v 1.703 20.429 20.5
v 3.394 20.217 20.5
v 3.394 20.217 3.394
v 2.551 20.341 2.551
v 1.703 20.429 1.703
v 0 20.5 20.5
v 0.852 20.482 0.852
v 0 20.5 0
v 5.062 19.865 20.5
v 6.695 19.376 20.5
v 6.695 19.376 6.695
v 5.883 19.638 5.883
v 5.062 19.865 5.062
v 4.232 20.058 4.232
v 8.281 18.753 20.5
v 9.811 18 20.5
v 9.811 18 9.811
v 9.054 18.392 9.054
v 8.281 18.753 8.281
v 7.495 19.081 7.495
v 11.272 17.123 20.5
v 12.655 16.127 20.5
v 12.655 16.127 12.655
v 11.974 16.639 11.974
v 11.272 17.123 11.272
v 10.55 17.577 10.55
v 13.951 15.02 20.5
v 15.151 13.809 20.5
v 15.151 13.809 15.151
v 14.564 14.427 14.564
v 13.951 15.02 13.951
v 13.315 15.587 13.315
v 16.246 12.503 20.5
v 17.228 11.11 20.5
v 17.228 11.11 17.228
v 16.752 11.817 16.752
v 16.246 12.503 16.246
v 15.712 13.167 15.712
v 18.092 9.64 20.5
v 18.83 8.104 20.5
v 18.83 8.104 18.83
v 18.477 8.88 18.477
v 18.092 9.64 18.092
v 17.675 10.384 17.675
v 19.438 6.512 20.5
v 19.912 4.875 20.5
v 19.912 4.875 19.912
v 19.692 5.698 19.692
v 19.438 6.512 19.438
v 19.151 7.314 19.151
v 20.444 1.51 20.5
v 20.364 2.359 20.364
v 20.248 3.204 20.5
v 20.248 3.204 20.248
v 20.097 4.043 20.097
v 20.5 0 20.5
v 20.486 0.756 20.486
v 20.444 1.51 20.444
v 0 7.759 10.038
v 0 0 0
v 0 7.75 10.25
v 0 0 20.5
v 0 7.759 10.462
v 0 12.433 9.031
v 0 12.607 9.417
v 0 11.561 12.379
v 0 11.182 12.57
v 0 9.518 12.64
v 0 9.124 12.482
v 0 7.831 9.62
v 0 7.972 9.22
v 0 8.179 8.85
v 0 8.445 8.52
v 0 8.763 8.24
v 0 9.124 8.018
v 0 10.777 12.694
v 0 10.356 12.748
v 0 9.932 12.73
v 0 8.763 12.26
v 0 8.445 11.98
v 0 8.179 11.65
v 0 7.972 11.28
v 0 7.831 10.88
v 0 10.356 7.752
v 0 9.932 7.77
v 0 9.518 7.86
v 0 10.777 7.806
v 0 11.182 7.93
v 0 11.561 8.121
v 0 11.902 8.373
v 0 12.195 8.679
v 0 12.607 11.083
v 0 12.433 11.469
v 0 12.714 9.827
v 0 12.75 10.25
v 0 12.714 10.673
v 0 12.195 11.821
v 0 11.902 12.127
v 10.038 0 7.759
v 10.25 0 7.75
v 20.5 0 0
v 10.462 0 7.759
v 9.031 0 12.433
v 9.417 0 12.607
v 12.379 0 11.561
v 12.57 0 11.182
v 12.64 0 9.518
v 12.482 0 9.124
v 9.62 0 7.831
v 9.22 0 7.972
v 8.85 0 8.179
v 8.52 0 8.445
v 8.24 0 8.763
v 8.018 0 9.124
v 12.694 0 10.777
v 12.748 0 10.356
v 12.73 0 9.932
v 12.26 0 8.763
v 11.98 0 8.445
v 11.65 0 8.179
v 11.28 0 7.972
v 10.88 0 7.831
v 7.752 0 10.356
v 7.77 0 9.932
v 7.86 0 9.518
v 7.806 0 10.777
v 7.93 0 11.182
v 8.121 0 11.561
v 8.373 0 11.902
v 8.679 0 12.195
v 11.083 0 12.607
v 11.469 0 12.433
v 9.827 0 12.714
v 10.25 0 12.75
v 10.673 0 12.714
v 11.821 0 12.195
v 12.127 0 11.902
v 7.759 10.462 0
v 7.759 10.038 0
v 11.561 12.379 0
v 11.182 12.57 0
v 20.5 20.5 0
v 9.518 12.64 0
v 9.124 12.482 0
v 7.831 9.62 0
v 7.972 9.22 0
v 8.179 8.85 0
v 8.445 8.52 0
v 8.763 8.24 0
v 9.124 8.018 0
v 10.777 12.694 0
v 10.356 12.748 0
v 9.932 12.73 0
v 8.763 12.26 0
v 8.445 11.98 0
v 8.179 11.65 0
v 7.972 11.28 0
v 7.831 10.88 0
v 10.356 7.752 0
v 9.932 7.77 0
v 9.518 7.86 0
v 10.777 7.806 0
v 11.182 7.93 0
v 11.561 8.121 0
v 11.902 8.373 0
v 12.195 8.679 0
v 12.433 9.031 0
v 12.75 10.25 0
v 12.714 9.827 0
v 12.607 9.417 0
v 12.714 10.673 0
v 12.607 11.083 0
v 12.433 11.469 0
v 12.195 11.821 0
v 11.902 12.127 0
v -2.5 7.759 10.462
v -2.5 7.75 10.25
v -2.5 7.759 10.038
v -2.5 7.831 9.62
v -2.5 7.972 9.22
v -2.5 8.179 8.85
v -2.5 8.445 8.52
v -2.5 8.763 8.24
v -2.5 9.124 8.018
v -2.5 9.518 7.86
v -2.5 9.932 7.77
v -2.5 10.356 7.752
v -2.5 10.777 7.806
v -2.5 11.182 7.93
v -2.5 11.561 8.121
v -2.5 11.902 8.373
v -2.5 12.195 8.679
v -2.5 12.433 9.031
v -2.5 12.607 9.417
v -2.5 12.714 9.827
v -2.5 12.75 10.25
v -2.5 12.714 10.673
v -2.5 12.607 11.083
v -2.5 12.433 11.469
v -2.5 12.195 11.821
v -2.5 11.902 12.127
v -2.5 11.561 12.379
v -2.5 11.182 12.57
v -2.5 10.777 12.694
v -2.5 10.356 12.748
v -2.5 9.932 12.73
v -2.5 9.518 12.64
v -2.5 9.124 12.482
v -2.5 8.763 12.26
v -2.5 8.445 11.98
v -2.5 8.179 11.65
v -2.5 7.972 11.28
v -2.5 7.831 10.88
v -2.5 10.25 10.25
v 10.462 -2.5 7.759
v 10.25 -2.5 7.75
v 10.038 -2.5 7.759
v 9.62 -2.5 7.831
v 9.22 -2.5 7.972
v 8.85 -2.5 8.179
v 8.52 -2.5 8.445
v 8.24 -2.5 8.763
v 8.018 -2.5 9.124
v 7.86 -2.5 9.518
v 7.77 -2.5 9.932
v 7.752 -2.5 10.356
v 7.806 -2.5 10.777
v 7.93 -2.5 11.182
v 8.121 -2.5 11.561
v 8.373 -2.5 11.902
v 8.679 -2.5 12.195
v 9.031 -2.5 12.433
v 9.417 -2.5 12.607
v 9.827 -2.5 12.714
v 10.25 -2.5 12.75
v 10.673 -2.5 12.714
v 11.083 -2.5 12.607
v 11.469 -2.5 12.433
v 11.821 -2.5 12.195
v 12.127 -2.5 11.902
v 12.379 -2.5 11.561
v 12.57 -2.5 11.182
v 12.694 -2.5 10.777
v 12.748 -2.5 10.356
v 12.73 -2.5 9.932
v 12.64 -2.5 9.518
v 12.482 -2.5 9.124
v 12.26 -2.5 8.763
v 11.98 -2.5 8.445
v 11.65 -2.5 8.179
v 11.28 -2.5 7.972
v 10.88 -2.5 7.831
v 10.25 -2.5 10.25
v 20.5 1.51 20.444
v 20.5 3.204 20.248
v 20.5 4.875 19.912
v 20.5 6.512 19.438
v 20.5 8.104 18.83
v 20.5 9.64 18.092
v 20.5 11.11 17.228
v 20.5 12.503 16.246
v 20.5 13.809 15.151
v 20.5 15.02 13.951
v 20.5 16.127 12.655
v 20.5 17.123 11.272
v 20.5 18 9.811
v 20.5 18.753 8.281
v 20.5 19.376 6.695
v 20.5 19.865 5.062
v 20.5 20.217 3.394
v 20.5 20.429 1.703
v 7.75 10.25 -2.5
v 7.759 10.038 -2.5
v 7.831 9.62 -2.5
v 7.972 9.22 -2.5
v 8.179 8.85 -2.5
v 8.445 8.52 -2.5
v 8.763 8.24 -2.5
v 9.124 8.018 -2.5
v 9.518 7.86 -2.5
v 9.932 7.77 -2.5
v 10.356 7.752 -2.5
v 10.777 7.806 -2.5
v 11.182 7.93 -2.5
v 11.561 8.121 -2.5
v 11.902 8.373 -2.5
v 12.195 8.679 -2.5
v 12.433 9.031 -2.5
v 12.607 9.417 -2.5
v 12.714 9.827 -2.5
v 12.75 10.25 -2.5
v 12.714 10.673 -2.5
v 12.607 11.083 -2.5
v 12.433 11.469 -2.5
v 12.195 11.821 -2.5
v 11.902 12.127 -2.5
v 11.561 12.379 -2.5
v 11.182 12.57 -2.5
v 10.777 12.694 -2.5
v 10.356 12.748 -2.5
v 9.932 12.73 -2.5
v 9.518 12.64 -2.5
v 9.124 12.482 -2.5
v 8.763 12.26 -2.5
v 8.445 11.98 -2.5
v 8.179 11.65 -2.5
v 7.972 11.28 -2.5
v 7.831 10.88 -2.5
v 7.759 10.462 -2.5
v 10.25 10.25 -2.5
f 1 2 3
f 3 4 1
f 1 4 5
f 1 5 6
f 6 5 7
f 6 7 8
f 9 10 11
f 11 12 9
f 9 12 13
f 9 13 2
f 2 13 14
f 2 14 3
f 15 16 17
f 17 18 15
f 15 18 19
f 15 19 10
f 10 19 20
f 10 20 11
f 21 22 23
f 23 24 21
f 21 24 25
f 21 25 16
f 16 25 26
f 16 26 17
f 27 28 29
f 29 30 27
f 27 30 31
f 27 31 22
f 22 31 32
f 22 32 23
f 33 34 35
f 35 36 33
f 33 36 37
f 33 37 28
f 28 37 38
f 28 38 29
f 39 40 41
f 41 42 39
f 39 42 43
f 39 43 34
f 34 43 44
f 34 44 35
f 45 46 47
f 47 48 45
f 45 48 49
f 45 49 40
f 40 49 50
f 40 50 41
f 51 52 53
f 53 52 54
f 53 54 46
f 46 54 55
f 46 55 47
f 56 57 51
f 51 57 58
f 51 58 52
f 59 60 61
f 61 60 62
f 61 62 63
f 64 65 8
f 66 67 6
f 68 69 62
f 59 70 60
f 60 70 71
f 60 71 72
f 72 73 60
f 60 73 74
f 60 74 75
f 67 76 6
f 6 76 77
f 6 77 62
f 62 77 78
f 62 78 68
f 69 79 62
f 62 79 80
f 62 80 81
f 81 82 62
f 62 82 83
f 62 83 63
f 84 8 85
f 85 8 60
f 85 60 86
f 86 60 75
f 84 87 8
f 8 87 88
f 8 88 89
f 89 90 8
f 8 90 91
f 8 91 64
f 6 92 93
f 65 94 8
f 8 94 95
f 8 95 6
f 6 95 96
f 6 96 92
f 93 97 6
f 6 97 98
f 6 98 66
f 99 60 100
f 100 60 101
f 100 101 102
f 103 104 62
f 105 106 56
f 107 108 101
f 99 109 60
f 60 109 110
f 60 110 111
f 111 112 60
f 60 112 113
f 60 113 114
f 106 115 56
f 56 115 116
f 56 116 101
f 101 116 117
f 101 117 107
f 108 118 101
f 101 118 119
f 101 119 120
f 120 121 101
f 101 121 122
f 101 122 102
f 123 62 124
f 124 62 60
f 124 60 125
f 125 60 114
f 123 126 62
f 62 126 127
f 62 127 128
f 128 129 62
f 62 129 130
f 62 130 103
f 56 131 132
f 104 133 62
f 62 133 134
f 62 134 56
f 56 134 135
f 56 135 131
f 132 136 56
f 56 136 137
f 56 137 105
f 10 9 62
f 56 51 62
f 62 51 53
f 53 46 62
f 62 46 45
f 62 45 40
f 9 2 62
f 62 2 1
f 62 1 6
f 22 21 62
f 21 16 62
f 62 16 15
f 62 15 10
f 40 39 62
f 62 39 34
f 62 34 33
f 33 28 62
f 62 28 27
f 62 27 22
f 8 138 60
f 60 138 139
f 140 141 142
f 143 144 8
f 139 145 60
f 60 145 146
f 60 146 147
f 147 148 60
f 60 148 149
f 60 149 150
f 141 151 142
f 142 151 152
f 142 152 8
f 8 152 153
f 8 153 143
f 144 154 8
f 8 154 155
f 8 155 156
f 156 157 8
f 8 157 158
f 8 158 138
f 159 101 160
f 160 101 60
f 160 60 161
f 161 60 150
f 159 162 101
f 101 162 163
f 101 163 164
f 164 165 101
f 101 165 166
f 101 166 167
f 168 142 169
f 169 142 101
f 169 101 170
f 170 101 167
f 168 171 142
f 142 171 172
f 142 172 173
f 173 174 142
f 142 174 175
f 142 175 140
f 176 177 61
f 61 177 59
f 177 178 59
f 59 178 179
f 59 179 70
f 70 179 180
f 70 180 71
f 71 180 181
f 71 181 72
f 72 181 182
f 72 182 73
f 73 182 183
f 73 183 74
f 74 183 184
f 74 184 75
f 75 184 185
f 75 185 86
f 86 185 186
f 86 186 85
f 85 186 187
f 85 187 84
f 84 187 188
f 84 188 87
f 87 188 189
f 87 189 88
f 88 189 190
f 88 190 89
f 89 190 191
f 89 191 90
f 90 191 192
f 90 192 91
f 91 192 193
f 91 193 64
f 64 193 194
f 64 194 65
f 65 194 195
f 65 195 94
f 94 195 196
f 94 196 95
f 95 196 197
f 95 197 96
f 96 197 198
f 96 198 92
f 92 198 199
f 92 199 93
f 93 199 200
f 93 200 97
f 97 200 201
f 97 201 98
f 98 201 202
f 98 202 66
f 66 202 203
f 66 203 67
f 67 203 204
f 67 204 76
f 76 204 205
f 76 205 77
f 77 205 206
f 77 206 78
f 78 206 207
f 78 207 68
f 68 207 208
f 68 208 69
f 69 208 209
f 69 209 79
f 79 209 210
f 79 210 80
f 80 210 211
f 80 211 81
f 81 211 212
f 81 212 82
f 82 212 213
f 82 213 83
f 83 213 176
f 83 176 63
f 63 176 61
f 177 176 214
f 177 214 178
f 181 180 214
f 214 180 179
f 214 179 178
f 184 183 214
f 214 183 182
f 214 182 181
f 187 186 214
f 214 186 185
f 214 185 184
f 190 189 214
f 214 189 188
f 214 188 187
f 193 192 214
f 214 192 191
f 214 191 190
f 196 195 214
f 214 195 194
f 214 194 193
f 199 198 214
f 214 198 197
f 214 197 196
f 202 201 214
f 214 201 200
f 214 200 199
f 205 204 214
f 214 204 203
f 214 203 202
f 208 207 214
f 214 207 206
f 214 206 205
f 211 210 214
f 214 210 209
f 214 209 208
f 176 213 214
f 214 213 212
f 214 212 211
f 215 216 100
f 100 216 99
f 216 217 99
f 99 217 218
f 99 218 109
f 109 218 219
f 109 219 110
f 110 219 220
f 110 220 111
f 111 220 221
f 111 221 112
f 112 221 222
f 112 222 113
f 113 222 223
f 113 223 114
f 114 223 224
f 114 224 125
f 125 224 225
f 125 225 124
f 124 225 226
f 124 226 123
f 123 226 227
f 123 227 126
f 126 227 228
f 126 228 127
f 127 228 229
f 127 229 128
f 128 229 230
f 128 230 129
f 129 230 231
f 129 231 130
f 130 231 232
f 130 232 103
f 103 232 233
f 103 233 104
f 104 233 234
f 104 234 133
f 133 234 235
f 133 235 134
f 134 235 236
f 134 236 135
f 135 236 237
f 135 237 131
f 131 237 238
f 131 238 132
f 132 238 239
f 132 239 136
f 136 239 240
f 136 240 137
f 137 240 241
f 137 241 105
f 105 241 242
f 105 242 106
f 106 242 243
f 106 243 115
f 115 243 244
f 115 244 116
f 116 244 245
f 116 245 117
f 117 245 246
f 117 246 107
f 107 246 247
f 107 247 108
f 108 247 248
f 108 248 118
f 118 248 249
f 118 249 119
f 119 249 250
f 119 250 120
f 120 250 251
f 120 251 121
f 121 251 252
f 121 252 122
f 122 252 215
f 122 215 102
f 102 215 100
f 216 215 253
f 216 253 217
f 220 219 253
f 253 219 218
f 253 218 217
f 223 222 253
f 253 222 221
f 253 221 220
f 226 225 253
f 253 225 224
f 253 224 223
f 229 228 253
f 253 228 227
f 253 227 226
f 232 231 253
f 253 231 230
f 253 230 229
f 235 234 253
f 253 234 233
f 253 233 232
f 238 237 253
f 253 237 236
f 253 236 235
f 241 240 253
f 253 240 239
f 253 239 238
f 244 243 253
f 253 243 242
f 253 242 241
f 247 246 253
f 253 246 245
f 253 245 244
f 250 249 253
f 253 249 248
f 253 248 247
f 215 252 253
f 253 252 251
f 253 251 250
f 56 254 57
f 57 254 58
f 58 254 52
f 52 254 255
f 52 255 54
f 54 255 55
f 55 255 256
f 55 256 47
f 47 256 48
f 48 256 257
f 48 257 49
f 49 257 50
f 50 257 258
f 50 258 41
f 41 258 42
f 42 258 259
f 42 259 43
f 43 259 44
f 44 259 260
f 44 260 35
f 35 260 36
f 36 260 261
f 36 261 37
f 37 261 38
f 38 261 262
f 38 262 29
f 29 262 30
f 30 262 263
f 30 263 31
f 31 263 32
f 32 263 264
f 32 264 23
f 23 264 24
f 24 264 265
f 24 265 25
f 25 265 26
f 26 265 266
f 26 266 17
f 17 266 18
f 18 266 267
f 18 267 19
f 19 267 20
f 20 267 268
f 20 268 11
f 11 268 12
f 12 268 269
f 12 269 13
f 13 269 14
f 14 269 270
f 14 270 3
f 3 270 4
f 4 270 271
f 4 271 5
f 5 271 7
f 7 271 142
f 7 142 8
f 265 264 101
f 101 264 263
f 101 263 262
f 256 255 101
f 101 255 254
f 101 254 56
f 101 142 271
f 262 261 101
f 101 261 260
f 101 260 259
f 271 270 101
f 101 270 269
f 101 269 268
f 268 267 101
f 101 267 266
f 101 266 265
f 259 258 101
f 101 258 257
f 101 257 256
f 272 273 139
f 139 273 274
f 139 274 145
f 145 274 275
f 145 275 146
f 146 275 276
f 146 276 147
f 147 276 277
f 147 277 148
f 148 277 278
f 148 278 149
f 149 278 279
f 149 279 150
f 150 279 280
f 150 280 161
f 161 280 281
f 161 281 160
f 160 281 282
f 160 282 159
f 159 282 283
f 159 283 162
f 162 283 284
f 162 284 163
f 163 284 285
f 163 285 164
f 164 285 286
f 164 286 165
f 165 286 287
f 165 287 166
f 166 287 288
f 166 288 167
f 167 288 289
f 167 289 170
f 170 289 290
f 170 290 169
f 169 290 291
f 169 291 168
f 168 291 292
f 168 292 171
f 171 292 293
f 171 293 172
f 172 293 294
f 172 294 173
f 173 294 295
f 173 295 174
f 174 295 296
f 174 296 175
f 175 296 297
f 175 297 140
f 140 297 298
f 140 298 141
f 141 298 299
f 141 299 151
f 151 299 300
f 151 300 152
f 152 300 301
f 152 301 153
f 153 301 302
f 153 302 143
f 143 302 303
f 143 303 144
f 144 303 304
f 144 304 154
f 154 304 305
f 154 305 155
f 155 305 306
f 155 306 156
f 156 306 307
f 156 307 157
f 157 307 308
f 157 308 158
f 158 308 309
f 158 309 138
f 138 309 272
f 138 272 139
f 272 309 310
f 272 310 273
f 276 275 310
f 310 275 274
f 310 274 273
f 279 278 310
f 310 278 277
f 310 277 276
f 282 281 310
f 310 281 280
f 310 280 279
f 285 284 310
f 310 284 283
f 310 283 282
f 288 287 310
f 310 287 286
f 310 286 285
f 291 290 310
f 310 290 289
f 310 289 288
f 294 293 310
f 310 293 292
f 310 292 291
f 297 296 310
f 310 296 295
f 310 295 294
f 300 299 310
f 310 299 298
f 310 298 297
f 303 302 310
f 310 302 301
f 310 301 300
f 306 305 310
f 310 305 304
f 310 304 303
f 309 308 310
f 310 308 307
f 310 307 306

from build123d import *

# Parameters (mm, degrees)
Y_KSEKLIK_EKSTR_ZYON1_DEPTH = 20.5
SKETCH_1_R                  = 2.5
EXTRUDE_1_DEPTH             = 2.5
SKETCH_2_R                  = 2.5
EXTRUDE_2_DEPTH             = 2.5
SKETCH_3_W                  = 20.5
SKETCH_3_H                  = 20.5
REVOLVE_2_ANGLE             = 90
SKETCH_4_R                  = 2.5
EXTRUDE_3_DEPTH             = 2.5


with BuildPart() as part:
    # Çizim1 → Yükseklik-Ekstrüzyon1 (new body)
    with BuildSketch(Plane.XY):
        with BuildLine():
            Line((0, 20.5), (0, 0))
            Line((0, 0), (20.5, 0))
            ThreePointArc((20.5, 0), (14.495689014, 14.495689014), (0, 20.5))
        make_face()
    extrude(amount=Y_KSEKLIK_EKSTR_ZYON1_DEPTH)

    # Эскиз1 → Бобышка-Вытянуть1 (add)
    with BuildSketch(Plane.ZY):
        with Locations(Location((10.25, 10.25, 0), (0, 0, 270))):
            Circle(SKETCH_1_R)
    extrude(amount=EXTRUDE_1_DEPTH)

    # Эскиз2 → Бобышка-Вытянуть2 (add)
    with BuildSketch(Plane(origin=(0, 0, 0), x_dir=(-1, 0, 0), z_dir=(0, -1, 0))):
        with Locations(Location((-10.25, -10.25, 0), (0, 0, 90))):
            Circle(SKETCH_2_R)
    extrude(amount=EXTRUDE_2_DEPTH)

    # Эскиз3 → Повернуть2 (revolve)
    with BuildSketch(Plane(origin=(0, 0, 0), x_dir=(-1, 0, 0), z_dir=(0, 0, -1))):
        with Locations((-10.25, 10.25)):
            Rectangle(SKETCH_3_W, SKETCH_3_H)
    revolve(axis=Axis((0, 0, 0), (1, 0, 0)), revolution_arc=REVOLVE_2_ANGLE)

    # Эскиз4 → Бобышка-Вытянуть3 (add)
    with BuildSketch(Plane(origin=(0, 0, 0), x_dir=(-1, 0, 0), z_dir=(0, 0, -1))):
        with Locations(Location((-10.25, 10.25, 0), (0, 0, 180))):
            Circle(SKETCH_4_R)
    extrude(amount=EXTRUDE_3_DEPTH)


solid = part.part
